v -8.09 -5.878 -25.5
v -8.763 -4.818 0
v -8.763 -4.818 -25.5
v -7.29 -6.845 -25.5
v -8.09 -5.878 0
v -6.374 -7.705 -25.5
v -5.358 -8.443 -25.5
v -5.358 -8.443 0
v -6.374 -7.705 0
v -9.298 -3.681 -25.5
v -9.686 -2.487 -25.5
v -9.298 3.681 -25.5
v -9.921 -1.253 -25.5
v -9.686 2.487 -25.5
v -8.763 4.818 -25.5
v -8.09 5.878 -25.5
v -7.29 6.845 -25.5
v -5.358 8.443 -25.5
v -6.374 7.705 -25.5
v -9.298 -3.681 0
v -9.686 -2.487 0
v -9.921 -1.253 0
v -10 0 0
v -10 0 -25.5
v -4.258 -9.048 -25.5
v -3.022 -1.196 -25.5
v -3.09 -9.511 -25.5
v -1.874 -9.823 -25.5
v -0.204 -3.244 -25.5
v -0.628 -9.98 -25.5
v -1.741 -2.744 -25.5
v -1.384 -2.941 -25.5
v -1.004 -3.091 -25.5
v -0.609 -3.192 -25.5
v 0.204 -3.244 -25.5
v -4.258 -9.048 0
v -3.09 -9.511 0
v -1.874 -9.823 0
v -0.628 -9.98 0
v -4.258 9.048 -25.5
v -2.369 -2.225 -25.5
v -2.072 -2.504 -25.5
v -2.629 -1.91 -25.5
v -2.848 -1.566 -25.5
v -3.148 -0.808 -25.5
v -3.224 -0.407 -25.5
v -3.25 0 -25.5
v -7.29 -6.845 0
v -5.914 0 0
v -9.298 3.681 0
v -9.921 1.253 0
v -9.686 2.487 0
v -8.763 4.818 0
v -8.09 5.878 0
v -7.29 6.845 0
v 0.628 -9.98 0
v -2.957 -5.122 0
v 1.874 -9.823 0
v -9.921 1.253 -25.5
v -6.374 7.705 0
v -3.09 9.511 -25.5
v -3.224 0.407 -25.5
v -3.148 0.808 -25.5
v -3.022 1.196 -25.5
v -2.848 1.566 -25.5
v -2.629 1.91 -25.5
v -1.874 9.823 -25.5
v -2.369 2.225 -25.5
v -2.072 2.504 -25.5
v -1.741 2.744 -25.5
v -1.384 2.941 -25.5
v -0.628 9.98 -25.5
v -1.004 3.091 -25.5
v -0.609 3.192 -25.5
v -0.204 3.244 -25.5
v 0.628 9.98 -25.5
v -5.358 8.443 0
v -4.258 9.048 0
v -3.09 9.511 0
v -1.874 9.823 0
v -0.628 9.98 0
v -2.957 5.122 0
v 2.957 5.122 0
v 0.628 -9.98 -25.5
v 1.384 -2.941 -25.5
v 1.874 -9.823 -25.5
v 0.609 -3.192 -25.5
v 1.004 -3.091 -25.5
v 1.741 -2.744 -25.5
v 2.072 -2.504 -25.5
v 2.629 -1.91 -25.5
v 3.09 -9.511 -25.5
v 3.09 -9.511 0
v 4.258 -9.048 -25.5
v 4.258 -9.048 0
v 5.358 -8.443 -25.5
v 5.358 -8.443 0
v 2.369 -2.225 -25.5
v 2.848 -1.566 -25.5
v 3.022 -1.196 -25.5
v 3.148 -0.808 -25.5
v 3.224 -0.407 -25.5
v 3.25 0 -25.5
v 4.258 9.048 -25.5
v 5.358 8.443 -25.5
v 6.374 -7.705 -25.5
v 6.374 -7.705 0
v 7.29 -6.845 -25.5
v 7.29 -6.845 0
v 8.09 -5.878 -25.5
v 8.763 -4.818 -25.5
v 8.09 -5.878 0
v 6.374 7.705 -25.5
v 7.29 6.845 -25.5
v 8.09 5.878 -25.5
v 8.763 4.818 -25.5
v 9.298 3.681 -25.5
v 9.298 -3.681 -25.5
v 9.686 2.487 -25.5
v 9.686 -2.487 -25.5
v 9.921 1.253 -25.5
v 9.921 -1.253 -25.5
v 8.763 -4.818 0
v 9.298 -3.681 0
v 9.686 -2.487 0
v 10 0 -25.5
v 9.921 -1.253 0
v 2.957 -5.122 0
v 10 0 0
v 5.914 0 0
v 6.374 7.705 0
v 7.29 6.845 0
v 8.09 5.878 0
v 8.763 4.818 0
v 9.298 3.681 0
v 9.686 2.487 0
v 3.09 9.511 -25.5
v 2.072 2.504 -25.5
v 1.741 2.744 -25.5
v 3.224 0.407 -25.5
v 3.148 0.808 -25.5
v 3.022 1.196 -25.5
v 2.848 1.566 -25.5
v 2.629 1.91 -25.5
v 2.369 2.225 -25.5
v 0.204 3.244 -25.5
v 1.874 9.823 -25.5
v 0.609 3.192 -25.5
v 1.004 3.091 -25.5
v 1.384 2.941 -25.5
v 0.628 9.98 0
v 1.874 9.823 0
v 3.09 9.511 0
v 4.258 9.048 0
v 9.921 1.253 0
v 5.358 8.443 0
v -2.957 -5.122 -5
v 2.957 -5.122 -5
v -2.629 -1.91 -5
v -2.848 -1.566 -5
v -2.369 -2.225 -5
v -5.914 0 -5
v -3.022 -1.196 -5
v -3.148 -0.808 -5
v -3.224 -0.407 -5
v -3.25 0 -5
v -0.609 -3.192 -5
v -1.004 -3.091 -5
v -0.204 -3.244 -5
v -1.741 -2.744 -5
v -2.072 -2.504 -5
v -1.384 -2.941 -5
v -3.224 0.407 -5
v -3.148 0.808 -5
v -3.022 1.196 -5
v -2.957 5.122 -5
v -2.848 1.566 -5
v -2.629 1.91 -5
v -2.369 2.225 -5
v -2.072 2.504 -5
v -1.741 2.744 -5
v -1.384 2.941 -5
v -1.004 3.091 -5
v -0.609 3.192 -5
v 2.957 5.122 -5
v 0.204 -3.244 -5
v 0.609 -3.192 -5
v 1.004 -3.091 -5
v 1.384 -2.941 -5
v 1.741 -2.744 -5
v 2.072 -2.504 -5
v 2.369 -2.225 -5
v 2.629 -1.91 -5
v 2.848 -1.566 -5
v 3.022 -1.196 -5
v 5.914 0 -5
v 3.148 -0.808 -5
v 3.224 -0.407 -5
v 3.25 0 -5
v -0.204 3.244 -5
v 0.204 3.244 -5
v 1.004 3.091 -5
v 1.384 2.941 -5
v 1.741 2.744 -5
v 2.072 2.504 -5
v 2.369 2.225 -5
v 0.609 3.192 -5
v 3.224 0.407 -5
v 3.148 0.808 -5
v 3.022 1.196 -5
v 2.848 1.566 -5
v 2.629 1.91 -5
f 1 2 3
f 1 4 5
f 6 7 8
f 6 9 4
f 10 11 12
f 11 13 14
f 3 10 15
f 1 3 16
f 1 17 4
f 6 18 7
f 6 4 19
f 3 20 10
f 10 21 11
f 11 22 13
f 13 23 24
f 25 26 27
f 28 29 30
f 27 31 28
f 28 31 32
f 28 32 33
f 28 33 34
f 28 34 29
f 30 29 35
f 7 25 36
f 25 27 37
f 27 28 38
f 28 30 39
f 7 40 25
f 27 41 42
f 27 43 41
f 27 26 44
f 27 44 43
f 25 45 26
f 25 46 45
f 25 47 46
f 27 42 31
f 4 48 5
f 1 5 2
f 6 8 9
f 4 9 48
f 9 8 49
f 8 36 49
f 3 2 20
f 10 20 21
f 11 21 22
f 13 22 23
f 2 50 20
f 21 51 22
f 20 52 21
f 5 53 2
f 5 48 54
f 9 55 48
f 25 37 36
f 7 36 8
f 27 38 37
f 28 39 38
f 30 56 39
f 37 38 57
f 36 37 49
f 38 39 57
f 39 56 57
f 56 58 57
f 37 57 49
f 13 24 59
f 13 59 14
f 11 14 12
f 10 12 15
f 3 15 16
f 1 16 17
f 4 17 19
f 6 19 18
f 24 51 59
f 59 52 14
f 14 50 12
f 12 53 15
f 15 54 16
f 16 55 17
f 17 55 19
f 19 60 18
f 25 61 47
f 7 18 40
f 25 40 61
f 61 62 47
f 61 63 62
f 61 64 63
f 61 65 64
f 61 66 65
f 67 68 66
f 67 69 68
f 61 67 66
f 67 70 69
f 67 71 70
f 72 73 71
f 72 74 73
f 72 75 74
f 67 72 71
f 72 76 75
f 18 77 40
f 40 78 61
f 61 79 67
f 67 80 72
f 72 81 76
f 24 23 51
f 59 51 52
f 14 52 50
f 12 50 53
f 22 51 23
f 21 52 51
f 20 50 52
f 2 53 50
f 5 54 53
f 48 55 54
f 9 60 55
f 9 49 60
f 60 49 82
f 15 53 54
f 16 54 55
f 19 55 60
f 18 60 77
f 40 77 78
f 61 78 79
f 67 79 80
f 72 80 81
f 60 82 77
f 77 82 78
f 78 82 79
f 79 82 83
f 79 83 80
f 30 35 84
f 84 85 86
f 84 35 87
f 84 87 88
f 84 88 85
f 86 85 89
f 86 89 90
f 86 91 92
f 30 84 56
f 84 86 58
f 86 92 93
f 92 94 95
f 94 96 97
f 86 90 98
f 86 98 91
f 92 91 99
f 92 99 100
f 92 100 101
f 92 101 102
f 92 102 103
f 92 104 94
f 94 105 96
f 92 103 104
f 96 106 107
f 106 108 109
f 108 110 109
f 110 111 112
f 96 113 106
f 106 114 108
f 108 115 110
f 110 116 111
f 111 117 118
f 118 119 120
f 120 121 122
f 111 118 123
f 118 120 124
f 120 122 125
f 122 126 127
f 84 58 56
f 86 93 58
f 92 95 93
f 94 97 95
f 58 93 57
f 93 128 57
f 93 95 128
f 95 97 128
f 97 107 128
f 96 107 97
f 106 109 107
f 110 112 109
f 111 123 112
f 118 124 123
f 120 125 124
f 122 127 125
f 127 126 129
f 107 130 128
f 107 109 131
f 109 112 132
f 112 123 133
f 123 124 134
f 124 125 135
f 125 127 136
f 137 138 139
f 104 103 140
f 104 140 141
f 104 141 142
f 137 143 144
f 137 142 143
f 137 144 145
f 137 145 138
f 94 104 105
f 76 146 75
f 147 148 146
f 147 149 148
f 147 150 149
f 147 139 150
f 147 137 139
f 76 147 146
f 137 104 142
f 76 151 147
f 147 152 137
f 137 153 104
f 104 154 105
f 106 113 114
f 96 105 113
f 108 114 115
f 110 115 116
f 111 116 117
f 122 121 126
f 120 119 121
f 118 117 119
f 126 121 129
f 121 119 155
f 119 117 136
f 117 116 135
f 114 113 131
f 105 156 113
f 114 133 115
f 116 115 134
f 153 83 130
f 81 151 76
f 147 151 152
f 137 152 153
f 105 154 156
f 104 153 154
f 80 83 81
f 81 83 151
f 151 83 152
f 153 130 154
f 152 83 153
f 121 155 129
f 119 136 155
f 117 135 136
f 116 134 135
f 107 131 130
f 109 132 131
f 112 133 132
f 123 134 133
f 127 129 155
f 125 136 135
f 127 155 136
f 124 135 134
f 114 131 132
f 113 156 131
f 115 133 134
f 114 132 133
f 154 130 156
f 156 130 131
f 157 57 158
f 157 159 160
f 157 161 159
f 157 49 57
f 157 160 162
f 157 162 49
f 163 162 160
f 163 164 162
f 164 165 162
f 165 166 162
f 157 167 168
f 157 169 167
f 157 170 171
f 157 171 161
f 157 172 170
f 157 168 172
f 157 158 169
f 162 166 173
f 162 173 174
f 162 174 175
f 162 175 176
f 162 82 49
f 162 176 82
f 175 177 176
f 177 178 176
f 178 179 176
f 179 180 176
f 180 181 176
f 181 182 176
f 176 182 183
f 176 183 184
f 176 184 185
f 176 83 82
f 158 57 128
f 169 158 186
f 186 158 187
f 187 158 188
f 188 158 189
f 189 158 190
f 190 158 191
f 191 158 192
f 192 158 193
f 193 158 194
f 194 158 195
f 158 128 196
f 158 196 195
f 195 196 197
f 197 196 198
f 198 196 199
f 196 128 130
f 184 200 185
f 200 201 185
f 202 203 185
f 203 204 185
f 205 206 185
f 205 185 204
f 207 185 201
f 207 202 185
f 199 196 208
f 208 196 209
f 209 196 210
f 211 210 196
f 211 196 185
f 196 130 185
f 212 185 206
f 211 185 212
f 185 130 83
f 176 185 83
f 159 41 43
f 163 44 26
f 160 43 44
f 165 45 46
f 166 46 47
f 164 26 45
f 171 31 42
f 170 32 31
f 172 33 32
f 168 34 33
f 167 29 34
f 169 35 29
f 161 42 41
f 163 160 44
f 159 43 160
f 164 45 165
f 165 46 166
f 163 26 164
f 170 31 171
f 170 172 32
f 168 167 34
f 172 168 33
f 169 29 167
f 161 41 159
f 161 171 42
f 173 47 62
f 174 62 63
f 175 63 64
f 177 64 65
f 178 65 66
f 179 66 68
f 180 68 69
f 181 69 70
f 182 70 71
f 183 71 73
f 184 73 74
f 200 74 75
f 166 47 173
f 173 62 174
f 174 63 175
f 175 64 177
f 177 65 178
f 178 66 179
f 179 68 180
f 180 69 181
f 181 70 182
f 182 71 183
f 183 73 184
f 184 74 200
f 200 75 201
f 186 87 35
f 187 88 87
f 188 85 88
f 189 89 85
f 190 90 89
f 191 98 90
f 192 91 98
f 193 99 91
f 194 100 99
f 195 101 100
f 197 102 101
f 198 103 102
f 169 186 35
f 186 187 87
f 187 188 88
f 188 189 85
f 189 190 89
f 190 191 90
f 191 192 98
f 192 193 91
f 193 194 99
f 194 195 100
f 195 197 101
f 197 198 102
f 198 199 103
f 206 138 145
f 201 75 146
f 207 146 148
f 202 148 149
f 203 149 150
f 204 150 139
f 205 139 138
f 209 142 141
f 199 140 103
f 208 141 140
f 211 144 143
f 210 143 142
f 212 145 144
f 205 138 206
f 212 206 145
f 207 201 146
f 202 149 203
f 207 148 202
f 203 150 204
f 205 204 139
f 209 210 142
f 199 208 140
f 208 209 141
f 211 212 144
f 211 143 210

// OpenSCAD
$fn = 50;

difference() {
	union() {
		translate(v = [0, 0, -25.5]) {
			cylinder(h = 25.5, r = 10.0);
		}
		#translate(v = [0, 0, -27.0]) {
			cylinder(h = 27, r = 2.875);
		}
	}
	union() {
		translate(v = [0, 0, 0]) {
			rotate(a = [0, 0, 0]) {
				difference() {
					union() {
						translate(v = [0, 0, -5]) {
							linear_extrude(height = 5) {
								polygon(points = [[5.914249999999999, 0.0], [2.957125, 5.1218907443321156], [-2.9571249999999982, 5.1218907443321156], [-5.914249999999999, 7.242867331857232e-16], [-2.9571250000000022, -5.121890744332115], [2.9571249999999956, -5.121890744332118]]);
							}
						}
					}
					union();
				}
			}
		}
		#translate(v = [0, 0, -100.0]) {
			cylinder(h = 200, r = 3.25);
		}
	}
}
